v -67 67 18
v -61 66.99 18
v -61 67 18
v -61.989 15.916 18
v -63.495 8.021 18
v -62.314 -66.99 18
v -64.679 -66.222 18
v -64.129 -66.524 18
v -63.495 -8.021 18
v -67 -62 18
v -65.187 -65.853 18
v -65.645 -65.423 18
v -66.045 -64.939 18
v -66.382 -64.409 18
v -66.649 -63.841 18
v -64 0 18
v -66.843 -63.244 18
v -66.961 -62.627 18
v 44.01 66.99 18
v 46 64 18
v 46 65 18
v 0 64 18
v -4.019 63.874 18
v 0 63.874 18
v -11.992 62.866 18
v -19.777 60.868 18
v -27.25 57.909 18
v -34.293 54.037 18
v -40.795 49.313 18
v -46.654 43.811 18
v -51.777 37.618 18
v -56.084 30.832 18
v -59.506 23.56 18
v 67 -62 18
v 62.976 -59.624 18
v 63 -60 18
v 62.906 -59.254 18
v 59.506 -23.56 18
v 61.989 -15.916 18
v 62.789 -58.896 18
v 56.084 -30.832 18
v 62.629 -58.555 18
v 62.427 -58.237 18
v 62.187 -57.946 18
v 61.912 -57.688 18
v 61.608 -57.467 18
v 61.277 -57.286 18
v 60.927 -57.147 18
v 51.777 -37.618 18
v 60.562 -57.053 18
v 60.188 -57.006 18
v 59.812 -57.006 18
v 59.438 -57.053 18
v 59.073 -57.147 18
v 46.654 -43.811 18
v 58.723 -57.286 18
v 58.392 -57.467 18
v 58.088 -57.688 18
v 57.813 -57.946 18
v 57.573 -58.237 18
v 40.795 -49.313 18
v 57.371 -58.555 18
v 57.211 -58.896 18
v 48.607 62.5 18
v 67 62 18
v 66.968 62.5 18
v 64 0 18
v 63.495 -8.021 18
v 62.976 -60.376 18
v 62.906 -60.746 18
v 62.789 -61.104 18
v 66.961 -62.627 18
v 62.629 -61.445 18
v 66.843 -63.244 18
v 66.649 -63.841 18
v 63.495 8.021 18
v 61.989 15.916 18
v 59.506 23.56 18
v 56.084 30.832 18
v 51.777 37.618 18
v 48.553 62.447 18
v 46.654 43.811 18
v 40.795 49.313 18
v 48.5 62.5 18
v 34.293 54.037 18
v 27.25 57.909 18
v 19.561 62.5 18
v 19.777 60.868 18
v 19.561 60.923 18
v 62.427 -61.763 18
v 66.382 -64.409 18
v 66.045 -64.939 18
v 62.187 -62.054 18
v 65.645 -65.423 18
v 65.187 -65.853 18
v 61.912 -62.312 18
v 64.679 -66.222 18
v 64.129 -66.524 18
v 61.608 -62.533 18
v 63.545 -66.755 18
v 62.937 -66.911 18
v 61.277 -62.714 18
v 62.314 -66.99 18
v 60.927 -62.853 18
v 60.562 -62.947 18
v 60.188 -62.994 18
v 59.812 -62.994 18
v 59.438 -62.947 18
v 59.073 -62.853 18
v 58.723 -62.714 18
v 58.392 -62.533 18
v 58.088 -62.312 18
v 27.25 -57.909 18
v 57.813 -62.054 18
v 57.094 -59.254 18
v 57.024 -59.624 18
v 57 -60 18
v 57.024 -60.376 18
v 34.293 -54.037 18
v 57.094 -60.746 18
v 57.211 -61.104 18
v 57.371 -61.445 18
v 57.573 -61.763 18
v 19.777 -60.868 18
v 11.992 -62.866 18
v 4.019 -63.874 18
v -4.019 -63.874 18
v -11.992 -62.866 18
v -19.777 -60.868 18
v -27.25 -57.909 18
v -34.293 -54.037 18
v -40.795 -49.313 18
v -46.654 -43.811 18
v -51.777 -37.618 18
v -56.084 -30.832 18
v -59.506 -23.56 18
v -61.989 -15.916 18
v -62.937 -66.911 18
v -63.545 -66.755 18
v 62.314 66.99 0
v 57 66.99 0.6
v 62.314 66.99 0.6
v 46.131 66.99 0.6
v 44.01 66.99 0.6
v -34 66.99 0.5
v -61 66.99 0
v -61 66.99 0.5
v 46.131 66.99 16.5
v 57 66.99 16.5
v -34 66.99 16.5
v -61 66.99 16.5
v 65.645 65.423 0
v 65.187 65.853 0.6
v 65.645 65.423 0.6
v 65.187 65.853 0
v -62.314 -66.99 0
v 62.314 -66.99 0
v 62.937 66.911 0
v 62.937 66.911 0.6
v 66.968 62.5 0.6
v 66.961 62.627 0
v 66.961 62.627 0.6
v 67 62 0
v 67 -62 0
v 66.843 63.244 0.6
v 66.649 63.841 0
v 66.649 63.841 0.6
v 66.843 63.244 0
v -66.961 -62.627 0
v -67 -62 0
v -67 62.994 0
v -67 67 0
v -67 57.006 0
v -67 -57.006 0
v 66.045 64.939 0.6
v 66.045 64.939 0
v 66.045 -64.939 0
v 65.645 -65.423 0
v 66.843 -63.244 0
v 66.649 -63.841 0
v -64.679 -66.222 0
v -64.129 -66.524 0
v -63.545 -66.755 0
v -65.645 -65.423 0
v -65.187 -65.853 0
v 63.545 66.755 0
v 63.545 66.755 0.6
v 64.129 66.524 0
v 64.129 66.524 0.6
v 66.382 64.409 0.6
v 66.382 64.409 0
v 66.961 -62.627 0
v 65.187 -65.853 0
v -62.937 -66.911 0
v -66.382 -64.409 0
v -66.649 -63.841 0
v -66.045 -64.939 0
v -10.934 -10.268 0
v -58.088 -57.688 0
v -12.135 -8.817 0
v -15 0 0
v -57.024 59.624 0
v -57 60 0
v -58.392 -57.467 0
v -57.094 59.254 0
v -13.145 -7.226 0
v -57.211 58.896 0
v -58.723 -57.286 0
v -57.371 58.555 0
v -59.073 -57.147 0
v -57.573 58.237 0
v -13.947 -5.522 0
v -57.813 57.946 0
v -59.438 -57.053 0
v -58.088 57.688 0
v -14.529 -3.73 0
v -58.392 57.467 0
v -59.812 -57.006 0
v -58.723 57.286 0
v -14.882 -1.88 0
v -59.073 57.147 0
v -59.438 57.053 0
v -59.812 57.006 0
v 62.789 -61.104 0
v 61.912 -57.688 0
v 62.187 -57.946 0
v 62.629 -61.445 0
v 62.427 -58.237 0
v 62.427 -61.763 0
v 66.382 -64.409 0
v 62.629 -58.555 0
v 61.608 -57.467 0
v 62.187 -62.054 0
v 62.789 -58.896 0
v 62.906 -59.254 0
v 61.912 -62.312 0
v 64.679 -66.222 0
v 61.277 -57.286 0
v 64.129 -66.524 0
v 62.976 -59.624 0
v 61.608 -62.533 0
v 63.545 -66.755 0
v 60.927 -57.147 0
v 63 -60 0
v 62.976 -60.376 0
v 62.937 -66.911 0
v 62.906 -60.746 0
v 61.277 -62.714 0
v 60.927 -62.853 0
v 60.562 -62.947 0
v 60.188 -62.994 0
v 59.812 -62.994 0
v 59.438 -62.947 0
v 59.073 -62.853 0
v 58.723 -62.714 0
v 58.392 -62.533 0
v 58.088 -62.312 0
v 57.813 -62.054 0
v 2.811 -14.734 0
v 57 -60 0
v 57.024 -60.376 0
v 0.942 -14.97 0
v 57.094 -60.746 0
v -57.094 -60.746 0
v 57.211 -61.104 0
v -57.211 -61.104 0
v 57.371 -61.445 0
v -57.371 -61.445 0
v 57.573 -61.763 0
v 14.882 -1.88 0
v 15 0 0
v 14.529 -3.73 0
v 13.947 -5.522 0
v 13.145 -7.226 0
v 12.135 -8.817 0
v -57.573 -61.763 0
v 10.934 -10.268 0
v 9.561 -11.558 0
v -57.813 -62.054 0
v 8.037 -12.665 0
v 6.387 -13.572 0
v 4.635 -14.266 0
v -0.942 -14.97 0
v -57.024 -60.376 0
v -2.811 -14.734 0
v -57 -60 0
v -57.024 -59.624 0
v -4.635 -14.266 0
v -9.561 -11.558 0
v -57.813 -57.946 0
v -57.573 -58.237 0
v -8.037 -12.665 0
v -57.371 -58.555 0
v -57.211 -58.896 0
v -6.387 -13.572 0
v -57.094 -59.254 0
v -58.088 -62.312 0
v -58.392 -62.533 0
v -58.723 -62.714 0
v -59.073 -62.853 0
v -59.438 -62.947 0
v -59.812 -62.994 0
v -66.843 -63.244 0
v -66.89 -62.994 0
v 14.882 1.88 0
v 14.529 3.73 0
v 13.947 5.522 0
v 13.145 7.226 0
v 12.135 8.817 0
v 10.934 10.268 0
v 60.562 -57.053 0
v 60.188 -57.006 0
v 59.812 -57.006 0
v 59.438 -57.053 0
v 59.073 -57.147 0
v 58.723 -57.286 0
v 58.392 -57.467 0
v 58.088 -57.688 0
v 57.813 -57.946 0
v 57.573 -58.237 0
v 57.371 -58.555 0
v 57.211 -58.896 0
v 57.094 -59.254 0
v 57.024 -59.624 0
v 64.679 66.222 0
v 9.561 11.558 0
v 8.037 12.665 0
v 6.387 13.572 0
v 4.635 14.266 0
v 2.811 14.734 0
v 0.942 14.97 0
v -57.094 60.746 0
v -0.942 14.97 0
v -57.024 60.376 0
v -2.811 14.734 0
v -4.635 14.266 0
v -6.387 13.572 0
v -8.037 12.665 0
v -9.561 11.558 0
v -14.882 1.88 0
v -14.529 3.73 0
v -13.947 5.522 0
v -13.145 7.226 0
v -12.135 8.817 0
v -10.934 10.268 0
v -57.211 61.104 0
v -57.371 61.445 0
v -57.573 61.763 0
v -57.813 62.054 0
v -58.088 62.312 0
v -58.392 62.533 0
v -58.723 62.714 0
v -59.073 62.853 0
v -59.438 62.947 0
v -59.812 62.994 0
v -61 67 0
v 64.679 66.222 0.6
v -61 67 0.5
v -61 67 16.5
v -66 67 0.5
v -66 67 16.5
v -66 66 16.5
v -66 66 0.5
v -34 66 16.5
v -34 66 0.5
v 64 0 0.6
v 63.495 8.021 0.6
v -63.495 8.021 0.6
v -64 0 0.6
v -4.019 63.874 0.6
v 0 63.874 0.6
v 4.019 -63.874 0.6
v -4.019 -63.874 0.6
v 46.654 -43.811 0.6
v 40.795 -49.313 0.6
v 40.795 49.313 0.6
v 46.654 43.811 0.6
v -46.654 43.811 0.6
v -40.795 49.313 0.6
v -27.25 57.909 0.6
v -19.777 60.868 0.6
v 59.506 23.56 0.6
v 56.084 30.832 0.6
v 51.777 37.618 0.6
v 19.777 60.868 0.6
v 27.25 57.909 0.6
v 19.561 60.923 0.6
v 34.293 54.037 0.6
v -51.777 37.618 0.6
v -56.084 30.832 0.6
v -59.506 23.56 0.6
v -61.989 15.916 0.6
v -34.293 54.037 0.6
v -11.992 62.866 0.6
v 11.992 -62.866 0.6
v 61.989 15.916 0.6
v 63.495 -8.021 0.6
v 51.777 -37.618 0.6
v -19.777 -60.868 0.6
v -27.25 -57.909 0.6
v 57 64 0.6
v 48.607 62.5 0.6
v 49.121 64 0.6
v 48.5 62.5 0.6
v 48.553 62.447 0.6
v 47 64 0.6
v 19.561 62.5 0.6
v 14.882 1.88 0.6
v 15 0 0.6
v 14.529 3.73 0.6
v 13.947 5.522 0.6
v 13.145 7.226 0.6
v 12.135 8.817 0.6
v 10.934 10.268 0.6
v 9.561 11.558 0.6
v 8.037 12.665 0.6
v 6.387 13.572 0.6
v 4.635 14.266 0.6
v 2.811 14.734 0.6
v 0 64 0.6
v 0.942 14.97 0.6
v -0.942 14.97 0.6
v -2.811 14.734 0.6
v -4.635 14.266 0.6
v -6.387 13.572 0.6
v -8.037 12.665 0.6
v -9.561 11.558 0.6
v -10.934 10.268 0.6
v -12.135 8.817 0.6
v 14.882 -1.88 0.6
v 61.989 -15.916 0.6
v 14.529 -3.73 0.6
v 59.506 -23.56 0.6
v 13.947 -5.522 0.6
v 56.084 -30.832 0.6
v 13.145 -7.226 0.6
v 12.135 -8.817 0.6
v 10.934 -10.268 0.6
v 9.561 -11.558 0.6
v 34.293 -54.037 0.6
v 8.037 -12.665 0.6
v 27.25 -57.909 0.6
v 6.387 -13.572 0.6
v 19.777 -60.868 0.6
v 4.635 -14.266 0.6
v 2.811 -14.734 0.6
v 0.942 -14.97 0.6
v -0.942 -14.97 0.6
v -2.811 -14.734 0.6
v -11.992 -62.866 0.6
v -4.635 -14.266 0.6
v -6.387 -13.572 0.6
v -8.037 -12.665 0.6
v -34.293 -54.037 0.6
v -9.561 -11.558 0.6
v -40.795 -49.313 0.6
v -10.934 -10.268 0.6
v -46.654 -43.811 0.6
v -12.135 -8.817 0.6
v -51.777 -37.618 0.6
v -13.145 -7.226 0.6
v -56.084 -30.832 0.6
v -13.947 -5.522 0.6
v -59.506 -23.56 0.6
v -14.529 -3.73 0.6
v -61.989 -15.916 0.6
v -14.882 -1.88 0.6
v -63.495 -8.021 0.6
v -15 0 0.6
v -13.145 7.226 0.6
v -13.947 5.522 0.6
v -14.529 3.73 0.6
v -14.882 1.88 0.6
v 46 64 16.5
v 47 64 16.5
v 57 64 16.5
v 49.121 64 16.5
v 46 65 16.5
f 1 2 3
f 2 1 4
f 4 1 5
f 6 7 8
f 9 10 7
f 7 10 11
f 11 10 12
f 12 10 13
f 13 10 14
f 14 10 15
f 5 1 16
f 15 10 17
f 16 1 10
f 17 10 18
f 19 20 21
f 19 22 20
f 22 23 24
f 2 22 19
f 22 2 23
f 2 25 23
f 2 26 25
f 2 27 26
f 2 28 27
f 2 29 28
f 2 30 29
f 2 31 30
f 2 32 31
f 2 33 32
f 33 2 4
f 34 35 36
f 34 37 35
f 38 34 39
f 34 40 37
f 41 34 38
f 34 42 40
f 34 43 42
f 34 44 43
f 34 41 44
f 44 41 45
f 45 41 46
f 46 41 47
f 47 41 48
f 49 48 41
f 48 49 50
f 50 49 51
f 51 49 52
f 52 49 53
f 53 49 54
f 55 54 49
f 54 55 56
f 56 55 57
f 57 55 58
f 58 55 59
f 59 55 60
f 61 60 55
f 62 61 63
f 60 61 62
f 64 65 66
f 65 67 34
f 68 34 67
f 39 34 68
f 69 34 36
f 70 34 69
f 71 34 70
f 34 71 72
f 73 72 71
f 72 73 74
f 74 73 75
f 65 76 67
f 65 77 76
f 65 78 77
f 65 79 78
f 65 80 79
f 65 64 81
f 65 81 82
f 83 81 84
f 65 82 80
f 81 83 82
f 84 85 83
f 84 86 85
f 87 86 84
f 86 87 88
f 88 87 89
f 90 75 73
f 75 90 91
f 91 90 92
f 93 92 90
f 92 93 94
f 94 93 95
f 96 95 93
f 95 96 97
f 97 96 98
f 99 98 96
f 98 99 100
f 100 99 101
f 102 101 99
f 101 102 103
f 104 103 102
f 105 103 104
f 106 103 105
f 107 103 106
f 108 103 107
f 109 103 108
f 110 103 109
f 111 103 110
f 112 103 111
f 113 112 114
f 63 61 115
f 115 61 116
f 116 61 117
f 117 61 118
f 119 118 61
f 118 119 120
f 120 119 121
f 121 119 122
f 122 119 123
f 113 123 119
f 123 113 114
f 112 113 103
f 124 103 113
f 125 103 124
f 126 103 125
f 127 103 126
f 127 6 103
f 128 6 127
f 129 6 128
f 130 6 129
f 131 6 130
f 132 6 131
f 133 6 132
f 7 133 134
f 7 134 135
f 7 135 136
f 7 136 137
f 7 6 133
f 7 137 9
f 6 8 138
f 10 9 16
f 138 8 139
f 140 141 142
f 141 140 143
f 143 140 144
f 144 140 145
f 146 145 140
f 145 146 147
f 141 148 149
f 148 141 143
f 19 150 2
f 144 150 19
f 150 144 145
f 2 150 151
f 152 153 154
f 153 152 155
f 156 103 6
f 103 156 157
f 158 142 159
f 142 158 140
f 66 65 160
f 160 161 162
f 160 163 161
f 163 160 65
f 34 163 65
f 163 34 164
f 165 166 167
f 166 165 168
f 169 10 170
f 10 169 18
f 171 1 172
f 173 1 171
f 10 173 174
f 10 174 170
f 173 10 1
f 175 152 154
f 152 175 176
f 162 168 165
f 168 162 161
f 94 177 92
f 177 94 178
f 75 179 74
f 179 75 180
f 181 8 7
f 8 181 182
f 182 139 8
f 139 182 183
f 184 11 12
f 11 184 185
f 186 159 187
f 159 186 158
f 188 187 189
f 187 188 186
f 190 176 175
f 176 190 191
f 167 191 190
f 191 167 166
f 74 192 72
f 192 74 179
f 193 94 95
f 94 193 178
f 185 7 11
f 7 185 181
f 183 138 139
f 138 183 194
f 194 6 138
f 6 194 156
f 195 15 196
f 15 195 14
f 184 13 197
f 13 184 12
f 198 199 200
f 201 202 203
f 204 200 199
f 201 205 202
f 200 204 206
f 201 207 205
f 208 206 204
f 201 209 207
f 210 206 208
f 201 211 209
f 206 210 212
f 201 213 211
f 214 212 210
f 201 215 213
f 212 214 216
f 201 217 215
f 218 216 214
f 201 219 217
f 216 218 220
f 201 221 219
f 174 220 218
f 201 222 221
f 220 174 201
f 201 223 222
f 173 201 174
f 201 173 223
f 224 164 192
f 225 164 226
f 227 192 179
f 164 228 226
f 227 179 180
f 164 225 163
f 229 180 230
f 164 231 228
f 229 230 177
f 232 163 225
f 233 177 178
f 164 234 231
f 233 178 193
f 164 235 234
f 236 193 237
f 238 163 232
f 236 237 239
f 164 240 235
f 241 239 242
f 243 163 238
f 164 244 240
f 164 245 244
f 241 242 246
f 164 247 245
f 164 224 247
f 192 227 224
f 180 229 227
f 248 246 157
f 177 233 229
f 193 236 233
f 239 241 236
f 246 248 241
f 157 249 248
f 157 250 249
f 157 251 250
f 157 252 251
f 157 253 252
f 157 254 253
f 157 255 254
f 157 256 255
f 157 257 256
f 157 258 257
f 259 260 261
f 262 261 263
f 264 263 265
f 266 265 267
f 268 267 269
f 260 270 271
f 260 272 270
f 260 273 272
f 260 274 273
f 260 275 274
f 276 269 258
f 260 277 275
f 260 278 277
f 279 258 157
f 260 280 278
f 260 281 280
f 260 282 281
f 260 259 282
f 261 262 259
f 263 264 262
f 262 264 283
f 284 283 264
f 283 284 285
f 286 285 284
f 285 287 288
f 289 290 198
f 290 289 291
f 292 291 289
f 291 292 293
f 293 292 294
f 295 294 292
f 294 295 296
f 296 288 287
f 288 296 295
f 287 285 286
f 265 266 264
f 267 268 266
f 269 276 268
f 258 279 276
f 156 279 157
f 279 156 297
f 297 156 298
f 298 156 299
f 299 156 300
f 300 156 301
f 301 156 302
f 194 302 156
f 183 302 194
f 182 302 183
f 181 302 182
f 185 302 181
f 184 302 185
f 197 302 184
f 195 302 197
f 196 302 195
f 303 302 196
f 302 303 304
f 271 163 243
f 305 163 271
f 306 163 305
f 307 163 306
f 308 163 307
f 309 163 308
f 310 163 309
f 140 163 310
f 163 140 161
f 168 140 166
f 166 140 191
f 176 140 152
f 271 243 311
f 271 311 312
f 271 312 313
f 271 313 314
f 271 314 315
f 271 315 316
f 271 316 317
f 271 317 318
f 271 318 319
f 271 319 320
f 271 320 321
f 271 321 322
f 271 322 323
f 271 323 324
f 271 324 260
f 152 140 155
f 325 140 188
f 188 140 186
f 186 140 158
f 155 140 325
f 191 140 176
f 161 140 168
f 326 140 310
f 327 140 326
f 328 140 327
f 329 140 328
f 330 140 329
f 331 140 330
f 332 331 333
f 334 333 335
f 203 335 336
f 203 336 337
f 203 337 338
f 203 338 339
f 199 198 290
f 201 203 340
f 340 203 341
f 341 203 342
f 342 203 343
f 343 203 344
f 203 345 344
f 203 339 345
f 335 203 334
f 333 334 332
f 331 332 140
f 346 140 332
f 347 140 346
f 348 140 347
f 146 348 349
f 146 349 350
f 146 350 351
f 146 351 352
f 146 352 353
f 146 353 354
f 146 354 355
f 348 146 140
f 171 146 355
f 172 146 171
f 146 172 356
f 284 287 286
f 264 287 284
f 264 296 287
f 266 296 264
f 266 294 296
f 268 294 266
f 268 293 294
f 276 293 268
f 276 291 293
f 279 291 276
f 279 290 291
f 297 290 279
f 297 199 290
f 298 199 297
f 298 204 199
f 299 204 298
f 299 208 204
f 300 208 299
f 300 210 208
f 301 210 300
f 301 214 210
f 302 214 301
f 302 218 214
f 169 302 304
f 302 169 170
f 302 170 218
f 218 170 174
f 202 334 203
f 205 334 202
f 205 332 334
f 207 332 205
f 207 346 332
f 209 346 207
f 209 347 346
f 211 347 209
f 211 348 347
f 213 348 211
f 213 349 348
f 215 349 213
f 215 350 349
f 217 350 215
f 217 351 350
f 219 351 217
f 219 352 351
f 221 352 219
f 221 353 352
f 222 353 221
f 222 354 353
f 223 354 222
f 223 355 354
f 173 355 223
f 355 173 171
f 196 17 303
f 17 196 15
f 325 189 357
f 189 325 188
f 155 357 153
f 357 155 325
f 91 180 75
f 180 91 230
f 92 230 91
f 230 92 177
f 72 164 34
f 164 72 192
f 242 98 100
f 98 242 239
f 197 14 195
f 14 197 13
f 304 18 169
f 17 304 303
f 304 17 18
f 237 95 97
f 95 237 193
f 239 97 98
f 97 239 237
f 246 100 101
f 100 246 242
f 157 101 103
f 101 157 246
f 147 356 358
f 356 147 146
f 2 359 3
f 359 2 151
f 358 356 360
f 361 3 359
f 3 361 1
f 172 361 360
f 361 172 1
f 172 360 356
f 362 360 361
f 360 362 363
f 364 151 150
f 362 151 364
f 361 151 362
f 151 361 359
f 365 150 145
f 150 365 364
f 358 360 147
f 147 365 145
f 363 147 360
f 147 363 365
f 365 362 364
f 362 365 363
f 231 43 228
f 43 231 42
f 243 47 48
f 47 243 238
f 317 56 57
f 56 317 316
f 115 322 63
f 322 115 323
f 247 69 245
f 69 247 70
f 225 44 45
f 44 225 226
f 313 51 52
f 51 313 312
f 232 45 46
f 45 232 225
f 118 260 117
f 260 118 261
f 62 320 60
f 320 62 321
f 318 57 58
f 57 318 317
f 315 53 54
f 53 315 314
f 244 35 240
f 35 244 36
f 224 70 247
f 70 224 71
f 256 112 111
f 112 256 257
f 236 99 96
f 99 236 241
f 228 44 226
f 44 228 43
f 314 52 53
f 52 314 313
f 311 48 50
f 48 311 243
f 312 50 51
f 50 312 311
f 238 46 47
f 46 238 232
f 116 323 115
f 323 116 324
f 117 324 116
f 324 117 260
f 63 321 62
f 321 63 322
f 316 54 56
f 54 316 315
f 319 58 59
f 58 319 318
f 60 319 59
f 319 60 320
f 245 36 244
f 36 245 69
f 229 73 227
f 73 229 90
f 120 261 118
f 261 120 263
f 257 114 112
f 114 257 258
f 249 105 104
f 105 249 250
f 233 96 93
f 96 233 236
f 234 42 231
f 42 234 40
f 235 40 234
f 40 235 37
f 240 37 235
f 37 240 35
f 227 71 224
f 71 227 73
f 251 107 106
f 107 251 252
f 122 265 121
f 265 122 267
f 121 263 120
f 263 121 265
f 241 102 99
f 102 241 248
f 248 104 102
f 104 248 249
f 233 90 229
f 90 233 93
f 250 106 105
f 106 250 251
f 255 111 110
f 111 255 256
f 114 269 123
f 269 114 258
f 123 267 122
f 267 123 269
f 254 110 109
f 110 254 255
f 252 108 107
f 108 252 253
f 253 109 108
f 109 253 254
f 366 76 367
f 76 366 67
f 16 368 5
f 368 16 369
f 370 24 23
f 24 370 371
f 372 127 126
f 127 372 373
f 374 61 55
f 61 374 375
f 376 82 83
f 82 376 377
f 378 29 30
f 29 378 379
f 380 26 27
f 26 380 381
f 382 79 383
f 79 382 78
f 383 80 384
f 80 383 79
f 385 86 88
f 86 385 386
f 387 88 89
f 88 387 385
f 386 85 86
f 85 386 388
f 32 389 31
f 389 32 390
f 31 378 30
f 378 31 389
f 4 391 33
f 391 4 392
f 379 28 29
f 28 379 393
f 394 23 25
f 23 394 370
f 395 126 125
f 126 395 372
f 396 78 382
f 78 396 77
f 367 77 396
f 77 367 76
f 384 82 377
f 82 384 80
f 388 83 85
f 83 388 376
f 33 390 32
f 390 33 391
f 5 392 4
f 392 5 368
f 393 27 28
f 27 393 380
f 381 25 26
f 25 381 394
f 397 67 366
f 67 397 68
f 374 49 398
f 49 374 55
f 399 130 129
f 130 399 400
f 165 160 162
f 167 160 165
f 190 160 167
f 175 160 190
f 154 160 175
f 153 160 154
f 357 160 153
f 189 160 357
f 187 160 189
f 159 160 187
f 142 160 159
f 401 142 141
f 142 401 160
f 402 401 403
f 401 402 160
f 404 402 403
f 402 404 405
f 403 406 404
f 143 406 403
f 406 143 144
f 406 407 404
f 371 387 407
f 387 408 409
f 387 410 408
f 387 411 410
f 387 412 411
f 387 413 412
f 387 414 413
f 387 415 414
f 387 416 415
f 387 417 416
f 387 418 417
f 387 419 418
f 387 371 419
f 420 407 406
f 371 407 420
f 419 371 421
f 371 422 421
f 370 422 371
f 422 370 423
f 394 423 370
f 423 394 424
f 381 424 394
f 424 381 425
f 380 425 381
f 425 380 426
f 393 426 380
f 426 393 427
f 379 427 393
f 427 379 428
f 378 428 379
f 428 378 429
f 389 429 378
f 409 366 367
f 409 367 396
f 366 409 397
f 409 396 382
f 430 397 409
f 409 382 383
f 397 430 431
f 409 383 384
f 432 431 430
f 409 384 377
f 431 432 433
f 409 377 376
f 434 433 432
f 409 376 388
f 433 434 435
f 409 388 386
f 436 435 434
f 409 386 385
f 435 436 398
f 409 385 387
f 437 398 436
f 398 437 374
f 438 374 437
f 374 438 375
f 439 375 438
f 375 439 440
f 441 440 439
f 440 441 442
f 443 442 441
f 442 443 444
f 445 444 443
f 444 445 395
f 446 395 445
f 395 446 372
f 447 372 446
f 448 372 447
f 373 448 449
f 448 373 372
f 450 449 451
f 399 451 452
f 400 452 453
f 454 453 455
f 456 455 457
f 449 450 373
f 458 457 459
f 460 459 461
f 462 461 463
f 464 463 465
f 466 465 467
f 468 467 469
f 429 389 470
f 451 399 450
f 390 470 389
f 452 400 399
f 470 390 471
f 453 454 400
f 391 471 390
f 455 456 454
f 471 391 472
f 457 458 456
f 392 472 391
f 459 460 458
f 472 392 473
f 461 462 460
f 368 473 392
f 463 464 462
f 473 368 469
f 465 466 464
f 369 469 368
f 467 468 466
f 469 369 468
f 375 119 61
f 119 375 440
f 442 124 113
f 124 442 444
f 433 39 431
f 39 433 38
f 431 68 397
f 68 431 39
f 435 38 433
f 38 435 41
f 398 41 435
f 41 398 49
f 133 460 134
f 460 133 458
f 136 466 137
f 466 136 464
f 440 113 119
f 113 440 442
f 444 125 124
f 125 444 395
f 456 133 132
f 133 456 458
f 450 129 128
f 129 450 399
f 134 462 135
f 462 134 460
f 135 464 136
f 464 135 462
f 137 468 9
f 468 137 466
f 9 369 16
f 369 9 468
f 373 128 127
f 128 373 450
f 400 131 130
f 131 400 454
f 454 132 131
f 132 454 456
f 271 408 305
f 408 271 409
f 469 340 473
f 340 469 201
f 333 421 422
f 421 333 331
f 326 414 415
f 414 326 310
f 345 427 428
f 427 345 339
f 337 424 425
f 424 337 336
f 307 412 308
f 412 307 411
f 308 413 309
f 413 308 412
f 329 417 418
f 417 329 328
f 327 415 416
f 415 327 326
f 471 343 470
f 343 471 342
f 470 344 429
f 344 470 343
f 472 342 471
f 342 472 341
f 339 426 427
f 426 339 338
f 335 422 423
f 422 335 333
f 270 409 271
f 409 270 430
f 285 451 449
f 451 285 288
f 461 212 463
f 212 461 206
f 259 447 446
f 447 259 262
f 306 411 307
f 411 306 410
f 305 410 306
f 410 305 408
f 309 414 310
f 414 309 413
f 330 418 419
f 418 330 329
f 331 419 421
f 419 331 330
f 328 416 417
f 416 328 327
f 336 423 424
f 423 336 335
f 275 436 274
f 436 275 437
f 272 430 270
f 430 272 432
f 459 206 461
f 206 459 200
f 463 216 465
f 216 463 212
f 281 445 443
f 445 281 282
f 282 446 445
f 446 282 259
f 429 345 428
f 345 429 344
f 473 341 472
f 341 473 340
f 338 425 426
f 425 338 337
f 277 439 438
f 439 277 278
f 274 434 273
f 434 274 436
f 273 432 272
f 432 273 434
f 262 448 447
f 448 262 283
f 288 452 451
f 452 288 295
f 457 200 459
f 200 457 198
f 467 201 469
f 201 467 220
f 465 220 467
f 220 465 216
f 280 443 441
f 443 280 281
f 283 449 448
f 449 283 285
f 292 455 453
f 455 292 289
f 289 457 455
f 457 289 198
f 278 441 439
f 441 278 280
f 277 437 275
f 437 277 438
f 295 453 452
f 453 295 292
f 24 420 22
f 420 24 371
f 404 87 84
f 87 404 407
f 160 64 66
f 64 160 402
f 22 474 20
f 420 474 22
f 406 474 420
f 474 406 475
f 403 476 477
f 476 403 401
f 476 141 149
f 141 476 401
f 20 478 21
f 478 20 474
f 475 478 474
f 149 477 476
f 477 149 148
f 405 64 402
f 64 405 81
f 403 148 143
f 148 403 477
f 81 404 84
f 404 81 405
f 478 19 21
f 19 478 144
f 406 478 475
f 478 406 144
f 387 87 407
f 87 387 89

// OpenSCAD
$fn = 50;


difference() {
	union() {
		hull() {
			translate(v = [-62.0000000000, 62.0000000000, 0]) {
				cylinder(h = 18, r = 5);
			}
			translate(v = [62.0000000000, 62.0000000000, 0]) {
				cylinder(h = 18, r = 5);
			}
			translate(v = [-62.0000000000, -62.0000000000, 0]) {
				cylinder(h = 18, r = 5);
			}
			translate(v = [62.0000000000, -62.0000000000, 0]) {
				cylinder(h = 18, r = 5);
			}
		}
		translate(v = [-67.0000000000, 61.0000000000, 0]) {
			cube(size = [6, 6, 18]);
		}
	}
	union() {
		translate(v = [-67.5000000000, -60.0000000000, -250.0000000000]) {
			rotate(a = [0, 0, 0]) {
				difference() {
					union() {
						hull() {
							translate(v = [7.5000000000, 0, 0]) {
								cylinder(h = 250, r = 3.0000000000, r1 = 3.0000000000, r2 = 3.0000000000);
							}
							translate(v = [-7.5000000000, 0, 0]) {
								cylinder(h = 250, r = 3.0000000000, r1 = 3.0000000000, r2 = 3.0000000000);
							}
						}
					}
					union();
				}
			}
		}
		translate(v = [-67.5000000000, 60.0000000000, -250.0000000000]) {
			rotate(a = [0, 0, 0]) {
				difference() {
					union() {
						hull() {
							translate(v = [7.5000000000, 0, 0]) {
								cylinder(h = 250, r = 3.0000000000, r1 = 3.0000000000, r2 = 3.0000000000);
							}
							translate(v = [-7.5000000000, 0, 0]) {
								cylinder(h = 250, r = 3.0000000000, r1 = 3.0000000000, r2 = 3.0000000000);
							}
						}
					}
					union();
				}
			}
		}
		translate(v = [-66.0000000000, 66.0000000000, 0.5000000000]) {
			cube(size = [32, 1, 16]);
		}
		translate(v = [60.0000000000, -60.0000000000, -50.0000000000]) {
			cylinder(h = 100, r = 3.0000000000);
		}
		translate(v = [0, 0, 0.6000000000]) {
			cylinder(h = 20.4000000000, r = 64.0000000000);
		}
		translate(v = [0, 0, -9.0000000000]) {
			cylinder(h = 18, r = 15.0000000000);
		}
		translate(v = [0.0000000000, 62.5000000000, 0.6000000000]) {
			cube(size = [67.0000000000, 1.5000000000, 20.4000000000]);
		}
		translate(v = [57.0000000000, 62.5000000000, 0.6000000000]) {
			cube(size = [10, 4.5000000000, 20.4000000000]);
		}
		translate(v = [46.0000000000, 62.5000000000, 16.5000000000]) {
			cube(size = [21, 4.5000000000, 1.5000000000]);
		}
		translate(v = [43.2500000000, 67.7500000000, 0.6000000000]) {
			rotate(a = [0, 0, -45]) {
				cube(size = [7.5000000000, 1.5000000000, 20.4000000000]);
			}
		}
		translate(v = [12.0610000000, 60.5000000000, 0.6000000000]) {
			cube(size = [7.5000000000, 2, 17.4000000000]);
		}
	}
}
